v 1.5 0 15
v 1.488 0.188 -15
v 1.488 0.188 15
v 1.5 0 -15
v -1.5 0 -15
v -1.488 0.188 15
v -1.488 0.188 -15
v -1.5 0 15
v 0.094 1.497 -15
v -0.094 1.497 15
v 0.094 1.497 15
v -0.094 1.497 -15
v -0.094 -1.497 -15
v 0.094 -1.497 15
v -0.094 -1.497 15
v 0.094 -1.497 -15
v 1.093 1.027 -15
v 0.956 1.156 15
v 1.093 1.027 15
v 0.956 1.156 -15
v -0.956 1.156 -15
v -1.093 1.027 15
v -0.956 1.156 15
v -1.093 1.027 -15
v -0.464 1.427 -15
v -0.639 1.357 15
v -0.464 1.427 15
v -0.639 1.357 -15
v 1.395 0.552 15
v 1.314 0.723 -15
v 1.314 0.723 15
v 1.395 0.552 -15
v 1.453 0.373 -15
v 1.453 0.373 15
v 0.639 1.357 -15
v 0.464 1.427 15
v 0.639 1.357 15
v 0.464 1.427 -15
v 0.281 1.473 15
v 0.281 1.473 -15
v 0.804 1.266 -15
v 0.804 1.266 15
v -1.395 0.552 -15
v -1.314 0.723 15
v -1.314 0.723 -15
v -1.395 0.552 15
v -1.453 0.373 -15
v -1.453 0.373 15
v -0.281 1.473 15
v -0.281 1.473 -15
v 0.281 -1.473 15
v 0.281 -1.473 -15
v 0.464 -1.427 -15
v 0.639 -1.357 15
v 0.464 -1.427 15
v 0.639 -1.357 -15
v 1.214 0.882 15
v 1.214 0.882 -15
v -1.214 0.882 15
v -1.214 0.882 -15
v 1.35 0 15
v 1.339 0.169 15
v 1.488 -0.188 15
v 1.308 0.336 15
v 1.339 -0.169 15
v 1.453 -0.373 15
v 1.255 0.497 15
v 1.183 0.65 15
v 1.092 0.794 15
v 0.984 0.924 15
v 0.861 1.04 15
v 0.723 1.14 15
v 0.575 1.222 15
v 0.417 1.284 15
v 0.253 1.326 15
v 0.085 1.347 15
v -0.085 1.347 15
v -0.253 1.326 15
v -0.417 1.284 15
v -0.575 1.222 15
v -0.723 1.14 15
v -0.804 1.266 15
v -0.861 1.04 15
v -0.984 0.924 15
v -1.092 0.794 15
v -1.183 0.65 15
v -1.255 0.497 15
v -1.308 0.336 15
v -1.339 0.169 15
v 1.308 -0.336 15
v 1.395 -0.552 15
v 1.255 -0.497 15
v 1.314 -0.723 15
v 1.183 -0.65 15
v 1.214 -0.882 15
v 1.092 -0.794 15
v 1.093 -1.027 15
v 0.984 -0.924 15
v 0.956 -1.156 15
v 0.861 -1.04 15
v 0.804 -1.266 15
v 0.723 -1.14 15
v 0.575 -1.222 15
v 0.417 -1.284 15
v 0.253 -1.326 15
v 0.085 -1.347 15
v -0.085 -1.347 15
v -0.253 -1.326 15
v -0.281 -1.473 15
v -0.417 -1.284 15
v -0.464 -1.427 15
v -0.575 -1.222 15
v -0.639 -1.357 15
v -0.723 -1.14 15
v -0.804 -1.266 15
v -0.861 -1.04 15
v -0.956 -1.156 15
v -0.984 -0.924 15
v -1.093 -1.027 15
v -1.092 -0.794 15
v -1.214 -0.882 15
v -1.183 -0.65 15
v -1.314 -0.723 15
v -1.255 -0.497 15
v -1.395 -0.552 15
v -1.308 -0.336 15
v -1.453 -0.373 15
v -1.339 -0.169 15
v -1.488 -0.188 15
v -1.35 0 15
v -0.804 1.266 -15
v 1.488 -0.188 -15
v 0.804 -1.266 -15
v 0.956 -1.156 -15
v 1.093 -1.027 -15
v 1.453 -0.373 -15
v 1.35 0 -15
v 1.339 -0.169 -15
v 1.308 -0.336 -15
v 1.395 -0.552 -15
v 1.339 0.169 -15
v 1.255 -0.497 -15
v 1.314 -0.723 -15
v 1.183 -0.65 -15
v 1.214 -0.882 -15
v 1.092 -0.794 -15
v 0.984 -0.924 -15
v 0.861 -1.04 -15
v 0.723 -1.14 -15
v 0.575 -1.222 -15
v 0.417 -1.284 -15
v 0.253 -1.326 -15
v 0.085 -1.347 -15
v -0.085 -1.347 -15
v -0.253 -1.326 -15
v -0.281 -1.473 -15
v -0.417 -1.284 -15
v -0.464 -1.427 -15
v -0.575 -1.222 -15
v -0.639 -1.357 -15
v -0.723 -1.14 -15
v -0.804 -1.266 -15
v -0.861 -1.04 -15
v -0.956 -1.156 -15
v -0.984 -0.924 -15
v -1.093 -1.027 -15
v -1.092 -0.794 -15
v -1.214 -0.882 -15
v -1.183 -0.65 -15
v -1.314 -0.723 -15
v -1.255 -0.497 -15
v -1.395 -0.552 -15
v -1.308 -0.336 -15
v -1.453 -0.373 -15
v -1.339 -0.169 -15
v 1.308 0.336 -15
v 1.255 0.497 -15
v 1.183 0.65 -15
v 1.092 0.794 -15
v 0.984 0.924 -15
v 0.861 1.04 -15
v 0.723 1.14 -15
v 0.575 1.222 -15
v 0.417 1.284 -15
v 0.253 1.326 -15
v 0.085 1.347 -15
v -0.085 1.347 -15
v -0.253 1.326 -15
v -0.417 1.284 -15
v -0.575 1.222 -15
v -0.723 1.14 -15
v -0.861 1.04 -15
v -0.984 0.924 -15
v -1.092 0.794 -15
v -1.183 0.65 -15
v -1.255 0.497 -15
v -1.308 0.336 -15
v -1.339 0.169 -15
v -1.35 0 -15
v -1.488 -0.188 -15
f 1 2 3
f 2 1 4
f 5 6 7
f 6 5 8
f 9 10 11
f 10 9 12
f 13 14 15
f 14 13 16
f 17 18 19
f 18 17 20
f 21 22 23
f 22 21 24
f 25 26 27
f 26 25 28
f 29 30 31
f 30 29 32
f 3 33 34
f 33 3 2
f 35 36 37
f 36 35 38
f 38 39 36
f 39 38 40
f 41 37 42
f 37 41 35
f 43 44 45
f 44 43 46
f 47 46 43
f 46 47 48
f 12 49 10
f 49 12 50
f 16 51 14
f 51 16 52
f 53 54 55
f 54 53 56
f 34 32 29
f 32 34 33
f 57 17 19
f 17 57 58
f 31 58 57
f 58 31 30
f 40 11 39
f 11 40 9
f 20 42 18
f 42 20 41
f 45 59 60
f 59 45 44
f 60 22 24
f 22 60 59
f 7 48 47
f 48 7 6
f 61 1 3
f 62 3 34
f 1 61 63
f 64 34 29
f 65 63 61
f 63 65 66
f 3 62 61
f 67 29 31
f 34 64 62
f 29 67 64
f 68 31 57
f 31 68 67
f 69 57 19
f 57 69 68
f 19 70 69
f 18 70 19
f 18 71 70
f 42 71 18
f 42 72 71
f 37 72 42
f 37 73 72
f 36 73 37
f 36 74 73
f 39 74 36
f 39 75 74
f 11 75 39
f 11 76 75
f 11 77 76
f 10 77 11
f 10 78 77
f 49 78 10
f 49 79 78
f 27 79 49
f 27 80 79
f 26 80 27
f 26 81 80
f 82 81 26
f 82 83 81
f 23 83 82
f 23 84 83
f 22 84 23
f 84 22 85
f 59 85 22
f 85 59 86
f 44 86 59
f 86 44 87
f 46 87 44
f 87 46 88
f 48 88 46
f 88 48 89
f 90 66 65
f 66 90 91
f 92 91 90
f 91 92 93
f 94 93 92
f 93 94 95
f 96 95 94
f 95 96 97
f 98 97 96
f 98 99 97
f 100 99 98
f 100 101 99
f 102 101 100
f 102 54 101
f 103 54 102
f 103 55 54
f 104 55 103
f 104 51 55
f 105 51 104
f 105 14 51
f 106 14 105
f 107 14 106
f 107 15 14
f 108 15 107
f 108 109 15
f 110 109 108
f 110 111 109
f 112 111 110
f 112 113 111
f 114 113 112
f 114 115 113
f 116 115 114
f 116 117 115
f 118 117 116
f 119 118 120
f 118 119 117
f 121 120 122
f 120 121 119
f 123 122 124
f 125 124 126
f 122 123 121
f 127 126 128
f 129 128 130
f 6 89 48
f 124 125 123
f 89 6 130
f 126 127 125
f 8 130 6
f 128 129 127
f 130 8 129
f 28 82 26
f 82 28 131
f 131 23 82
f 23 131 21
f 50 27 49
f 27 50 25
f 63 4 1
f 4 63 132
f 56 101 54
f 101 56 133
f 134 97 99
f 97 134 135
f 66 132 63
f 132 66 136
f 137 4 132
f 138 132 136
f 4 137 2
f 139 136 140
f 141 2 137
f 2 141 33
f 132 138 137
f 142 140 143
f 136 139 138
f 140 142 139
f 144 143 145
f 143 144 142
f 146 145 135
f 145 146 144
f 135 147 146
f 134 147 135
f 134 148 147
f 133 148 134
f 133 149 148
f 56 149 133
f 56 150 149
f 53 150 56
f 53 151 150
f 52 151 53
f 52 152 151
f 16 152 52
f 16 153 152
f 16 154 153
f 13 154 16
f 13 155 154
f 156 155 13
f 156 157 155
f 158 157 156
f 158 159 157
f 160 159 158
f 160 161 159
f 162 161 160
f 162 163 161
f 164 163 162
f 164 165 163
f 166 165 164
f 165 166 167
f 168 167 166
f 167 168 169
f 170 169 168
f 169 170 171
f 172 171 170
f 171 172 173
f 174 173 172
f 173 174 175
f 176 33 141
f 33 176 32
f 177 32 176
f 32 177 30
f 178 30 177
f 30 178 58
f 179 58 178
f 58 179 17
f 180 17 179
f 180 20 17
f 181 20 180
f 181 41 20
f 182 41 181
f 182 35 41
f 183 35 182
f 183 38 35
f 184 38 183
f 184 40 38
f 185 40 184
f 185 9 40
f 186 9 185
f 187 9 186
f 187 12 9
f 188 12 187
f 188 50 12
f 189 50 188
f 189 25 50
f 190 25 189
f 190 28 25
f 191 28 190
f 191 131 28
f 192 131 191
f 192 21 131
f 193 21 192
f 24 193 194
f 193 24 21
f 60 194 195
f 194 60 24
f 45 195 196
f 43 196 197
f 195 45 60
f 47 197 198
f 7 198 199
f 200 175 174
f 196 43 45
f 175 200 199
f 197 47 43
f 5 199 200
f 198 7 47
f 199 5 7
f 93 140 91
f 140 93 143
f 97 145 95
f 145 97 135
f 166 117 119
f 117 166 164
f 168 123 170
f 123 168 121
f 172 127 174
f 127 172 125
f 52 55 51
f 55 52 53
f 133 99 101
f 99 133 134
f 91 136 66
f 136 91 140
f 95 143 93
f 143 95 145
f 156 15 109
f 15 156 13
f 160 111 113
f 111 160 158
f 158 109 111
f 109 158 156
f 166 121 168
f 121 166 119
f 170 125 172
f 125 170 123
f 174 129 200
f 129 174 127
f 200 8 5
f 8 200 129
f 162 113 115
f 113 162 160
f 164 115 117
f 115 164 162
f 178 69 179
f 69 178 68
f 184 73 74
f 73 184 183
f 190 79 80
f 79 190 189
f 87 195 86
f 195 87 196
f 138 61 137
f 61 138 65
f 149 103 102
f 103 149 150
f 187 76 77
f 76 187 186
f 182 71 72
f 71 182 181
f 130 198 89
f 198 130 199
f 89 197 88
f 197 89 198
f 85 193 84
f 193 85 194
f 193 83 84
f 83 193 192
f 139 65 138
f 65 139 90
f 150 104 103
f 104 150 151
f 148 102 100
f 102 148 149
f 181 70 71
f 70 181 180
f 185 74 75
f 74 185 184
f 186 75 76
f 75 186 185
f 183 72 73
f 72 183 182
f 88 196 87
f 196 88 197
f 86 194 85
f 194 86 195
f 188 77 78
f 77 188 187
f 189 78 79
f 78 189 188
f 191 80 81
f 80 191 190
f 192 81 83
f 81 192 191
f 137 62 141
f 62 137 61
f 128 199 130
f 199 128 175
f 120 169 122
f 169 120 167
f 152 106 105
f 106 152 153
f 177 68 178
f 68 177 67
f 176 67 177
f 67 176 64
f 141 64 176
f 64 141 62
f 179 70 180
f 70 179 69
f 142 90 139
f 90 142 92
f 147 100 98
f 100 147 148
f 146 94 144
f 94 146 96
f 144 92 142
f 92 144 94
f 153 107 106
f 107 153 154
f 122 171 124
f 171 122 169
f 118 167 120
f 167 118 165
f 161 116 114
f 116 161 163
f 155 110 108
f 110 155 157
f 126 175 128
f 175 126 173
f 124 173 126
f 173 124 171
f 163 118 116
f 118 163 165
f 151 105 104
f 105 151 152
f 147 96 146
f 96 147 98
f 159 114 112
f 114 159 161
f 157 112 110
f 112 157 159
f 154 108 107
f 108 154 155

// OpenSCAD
$fn = 50;


difference() {
	union() {
		translate(v = [0, 0, -15.0000000000]) {
			cylinder(h = 30, r = 1.5000000000);
		}
	}
	union() {
		translate(v = [0, 0, -100.0000000000]) {
			cylinder(h = 200, r = 1.3500000000);
		}
	}
}
